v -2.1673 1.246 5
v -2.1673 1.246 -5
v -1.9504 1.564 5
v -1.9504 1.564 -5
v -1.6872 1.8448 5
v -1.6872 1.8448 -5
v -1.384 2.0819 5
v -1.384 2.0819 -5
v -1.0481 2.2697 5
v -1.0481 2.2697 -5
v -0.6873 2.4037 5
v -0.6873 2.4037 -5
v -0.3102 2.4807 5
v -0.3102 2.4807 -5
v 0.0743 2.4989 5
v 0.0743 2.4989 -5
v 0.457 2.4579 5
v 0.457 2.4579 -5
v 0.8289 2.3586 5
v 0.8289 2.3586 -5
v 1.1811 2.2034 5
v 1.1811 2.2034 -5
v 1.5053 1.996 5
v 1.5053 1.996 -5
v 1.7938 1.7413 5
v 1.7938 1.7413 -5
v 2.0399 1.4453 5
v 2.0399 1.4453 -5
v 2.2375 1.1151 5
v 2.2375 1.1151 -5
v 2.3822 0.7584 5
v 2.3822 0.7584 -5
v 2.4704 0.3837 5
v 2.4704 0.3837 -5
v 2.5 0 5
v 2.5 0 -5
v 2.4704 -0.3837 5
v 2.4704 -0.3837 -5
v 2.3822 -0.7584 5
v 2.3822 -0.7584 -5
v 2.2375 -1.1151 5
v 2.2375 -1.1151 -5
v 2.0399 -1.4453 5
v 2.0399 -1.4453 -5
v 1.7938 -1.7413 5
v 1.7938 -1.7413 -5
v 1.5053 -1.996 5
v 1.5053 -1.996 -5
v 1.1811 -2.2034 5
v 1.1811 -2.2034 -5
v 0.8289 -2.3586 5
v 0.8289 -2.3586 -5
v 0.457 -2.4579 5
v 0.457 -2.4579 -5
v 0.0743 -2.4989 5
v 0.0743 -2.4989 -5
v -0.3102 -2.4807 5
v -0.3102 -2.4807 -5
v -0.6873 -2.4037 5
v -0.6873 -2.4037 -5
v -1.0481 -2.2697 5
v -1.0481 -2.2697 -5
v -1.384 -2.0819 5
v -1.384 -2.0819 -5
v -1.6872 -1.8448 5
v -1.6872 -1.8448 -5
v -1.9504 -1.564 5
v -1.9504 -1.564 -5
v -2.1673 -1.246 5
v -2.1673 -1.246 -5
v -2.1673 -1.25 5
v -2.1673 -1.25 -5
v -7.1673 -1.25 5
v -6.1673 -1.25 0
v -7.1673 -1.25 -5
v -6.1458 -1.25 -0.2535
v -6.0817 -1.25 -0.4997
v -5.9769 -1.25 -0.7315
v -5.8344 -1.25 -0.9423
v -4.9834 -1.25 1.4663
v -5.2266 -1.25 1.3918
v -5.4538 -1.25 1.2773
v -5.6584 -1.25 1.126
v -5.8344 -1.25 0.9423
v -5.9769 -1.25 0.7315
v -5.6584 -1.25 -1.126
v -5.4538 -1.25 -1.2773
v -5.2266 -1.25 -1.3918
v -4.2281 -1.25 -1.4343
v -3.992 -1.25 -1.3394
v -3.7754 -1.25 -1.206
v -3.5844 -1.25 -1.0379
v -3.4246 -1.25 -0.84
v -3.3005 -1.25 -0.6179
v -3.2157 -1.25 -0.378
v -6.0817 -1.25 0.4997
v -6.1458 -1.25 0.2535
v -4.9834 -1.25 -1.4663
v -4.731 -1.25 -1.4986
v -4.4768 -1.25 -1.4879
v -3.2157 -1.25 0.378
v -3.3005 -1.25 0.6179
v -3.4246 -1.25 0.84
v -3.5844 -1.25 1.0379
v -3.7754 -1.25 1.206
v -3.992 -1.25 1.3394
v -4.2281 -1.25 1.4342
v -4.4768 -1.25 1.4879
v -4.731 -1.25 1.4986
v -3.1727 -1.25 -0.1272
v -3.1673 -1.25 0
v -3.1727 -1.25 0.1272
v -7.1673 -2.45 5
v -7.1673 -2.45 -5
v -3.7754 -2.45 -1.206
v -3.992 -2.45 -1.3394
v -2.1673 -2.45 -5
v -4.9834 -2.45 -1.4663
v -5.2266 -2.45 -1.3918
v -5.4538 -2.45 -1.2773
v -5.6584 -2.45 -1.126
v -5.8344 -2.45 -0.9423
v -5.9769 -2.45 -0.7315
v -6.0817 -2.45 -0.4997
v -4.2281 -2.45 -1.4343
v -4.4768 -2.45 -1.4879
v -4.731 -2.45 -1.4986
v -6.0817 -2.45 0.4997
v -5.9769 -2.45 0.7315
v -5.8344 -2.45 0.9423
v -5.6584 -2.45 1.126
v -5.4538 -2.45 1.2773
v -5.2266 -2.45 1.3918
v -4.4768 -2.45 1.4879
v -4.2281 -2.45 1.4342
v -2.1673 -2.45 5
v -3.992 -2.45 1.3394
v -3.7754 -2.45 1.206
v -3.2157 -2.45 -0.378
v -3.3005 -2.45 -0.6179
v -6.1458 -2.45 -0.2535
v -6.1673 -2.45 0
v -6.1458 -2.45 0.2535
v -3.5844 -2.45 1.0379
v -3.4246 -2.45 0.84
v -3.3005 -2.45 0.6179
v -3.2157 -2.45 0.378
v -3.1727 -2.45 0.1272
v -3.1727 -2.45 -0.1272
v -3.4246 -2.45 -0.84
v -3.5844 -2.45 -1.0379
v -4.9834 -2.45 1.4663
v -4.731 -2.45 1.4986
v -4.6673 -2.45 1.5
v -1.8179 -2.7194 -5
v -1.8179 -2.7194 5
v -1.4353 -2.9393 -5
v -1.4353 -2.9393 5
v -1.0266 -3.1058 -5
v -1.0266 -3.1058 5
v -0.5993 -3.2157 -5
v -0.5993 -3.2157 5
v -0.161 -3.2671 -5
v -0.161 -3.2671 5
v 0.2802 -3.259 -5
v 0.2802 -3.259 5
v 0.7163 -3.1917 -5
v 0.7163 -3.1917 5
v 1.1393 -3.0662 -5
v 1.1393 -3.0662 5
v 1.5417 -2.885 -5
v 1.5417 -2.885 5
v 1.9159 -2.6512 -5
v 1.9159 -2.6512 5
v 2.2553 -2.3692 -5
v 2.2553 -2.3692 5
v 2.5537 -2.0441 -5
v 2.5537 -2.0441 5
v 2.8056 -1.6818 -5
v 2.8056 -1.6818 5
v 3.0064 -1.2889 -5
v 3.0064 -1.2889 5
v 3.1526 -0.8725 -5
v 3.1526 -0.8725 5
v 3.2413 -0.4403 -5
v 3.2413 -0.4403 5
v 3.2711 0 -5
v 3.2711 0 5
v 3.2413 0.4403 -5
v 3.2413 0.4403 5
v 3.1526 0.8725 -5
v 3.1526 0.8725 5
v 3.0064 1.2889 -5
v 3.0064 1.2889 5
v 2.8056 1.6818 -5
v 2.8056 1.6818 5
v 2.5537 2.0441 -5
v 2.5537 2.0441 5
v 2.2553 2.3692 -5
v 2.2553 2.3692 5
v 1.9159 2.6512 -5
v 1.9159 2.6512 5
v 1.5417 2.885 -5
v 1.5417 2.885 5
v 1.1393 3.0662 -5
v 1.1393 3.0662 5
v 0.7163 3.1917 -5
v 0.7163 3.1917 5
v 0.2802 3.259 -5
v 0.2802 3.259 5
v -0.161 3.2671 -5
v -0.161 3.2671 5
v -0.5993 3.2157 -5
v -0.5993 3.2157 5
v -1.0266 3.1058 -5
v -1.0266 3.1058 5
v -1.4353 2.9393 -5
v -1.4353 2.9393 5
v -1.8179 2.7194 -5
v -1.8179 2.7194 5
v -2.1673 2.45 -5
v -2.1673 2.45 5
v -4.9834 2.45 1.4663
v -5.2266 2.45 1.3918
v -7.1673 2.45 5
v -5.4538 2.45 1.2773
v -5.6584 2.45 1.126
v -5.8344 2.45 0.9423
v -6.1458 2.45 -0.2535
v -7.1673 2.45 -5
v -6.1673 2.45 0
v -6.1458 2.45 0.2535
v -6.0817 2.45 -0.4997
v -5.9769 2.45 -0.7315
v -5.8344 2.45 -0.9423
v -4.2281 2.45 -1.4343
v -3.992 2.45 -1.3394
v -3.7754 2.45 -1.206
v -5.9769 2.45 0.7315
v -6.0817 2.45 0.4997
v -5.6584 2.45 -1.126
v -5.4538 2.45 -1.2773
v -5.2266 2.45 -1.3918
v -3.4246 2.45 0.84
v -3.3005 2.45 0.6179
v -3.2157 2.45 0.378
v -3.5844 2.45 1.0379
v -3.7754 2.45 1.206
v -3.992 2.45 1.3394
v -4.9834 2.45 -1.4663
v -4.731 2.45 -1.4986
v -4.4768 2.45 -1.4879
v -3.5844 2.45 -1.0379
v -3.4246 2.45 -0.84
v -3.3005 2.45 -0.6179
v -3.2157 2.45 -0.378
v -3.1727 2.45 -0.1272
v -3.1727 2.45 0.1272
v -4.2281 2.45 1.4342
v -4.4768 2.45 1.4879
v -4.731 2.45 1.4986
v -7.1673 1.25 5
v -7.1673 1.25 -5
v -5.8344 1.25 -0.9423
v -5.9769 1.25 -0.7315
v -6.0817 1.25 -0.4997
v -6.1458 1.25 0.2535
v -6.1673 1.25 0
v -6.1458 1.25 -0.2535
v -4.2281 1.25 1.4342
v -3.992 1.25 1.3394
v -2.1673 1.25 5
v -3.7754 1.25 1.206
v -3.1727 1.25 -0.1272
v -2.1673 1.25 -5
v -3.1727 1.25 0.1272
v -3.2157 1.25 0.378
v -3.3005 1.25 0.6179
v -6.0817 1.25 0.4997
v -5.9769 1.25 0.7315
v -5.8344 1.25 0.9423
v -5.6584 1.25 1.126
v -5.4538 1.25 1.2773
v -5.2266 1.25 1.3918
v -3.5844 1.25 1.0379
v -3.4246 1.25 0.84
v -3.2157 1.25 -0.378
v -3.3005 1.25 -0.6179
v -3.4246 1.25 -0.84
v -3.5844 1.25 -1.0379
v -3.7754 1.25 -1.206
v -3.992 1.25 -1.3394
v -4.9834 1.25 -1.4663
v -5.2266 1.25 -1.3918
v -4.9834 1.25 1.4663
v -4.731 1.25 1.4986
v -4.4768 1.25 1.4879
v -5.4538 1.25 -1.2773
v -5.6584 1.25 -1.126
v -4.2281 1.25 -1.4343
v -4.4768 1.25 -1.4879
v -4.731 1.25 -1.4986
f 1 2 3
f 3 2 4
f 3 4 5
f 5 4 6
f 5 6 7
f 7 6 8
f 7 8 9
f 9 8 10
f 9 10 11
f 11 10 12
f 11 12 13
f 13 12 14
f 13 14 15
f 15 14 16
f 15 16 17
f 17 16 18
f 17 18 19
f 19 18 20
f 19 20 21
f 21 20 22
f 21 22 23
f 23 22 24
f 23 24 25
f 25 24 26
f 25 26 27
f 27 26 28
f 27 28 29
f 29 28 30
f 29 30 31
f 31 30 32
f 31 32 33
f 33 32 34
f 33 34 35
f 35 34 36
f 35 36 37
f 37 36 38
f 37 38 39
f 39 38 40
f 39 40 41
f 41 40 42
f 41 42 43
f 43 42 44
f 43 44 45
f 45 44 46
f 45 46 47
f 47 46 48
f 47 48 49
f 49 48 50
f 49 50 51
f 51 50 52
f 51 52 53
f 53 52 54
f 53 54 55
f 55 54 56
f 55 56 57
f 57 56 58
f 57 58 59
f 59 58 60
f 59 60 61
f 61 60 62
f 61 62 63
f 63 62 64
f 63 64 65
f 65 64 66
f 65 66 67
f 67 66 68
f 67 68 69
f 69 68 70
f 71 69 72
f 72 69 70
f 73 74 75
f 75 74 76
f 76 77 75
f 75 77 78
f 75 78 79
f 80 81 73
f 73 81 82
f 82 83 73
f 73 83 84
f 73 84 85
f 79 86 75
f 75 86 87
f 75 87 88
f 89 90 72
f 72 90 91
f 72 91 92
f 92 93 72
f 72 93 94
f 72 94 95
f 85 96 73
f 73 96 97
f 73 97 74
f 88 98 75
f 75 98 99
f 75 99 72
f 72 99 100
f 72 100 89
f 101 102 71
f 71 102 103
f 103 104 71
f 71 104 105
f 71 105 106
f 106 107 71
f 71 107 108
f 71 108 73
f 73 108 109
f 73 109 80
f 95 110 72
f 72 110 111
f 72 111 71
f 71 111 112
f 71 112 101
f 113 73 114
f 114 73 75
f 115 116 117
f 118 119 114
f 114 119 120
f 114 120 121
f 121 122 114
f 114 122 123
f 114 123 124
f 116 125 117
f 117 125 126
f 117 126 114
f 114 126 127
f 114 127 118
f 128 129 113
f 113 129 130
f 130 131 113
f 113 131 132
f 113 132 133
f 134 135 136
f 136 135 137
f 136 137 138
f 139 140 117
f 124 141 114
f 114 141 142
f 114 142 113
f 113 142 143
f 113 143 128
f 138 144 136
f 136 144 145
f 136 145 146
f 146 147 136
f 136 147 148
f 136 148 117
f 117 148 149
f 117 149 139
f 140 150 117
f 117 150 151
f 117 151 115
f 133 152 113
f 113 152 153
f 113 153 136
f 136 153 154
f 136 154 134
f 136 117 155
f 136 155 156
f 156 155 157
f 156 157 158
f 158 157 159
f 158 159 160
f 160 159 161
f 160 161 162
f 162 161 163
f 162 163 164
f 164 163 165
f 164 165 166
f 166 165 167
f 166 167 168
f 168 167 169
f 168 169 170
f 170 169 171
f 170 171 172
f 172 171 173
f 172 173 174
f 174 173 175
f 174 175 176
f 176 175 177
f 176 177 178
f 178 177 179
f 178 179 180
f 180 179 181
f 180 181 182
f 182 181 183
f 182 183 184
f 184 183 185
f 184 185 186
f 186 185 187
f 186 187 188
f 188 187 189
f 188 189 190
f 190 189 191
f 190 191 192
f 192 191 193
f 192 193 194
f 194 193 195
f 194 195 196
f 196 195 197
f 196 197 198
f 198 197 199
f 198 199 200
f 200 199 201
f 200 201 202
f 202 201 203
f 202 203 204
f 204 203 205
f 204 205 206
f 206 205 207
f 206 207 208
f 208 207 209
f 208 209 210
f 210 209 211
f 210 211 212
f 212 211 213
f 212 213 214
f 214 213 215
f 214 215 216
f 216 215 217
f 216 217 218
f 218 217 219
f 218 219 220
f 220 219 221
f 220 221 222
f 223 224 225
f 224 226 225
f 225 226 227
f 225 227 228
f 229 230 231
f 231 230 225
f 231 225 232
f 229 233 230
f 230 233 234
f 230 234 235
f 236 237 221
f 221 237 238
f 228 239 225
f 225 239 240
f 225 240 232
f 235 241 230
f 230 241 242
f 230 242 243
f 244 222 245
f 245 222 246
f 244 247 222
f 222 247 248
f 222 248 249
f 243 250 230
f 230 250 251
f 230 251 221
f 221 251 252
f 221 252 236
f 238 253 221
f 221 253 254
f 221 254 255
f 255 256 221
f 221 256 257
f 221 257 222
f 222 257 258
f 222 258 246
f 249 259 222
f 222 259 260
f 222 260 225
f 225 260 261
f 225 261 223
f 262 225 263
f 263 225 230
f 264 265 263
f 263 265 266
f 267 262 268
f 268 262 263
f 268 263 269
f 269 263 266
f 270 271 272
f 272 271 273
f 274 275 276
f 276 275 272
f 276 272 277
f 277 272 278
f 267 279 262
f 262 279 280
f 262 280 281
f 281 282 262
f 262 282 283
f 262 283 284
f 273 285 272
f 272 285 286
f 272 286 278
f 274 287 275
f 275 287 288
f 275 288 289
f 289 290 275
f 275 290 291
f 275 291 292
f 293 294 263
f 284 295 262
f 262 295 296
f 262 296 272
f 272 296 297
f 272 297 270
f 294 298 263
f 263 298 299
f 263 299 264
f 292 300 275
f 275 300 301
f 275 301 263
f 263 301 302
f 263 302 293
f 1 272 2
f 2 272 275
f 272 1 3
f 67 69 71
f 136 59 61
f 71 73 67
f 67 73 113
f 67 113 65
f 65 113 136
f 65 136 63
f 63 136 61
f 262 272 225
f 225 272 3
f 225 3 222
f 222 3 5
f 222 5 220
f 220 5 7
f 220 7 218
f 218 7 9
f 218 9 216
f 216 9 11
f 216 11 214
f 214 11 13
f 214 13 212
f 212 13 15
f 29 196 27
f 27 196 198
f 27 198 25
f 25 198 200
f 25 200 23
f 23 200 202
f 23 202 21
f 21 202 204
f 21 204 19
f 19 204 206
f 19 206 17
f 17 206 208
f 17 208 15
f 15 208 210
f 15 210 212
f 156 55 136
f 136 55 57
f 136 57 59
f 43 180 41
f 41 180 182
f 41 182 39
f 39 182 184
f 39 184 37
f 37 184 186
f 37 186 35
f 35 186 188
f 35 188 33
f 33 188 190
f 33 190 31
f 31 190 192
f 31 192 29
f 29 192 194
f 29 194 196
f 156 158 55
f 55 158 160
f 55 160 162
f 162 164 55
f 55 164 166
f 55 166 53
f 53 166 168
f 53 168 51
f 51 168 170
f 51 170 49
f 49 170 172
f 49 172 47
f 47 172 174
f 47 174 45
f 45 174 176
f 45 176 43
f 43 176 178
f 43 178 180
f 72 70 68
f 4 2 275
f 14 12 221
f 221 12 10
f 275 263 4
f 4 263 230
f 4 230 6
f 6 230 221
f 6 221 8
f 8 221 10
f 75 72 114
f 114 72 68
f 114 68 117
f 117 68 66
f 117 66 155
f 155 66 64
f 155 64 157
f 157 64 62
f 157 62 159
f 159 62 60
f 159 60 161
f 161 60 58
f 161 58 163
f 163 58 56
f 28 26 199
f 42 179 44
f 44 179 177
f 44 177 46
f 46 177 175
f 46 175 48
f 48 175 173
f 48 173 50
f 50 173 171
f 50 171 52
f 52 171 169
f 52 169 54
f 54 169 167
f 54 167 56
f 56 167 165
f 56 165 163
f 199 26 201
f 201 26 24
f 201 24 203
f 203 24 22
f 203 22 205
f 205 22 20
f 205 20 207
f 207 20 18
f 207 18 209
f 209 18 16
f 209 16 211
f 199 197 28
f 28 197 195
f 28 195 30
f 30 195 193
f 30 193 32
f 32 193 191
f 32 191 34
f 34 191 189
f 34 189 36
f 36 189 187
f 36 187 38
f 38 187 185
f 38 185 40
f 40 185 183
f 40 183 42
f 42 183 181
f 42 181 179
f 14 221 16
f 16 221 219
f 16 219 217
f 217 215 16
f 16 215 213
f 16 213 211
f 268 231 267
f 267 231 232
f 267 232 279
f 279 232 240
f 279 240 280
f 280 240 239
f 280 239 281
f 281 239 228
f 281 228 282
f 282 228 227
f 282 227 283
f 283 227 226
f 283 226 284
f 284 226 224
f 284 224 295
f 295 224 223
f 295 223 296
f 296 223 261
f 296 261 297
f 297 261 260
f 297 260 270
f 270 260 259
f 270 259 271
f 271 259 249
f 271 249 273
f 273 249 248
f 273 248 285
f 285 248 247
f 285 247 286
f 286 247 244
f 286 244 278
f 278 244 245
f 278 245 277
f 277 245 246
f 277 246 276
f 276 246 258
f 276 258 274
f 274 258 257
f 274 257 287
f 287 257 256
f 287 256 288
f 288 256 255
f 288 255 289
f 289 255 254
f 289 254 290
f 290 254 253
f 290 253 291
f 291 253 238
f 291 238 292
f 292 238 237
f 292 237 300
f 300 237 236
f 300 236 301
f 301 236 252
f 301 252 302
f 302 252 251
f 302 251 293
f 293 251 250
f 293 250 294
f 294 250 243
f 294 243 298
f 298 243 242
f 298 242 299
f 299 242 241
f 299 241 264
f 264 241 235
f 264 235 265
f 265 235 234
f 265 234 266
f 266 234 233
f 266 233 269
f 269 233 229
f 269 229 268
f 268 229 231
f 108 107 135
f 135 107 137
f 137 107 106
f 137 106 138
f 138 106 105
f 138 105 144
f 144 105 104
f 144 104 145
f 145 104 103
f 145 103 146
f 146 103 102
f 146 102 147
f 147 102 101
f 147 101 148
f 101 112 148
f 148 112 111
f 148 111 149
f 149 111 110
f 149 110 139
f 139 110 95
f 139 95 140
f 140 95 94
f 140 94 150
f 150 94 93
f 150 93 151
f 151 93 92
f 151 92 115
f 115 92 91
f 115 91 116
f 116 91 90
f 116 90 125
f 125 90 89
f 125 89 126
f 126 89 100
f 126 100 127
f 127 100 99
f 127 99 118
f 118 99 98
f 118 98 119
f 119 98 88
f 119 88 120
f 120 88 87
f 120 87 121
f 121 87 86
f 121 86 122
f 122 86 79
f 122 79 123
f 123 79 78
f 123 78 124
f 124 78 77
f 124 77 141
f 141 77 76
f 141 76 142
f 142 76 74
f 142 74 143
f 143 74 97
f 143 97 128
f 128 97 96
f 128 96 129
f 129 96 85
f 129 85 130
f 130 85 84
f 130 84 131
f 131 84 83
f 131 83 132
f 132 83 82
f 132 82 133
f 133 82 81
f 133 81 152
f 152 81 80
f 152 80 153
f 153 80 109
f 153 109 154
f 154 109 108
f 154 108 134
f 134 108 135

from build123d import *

# Parameters (mm, degrees)
BOSS_EXTRUDE1_DEPTH = 5
SKETCH2_R           = 1.5
CUT_EXTRUDE1_DEPTH  = 10


with BuildPart() as part:
    # Sketch1 → Boss-Extrude1 (new, symmetric)
    with BuildSketch(Plane.XY):
        with BuildLine():
            Line((-7.167342336, 1.25), (-7.167342336, 2.45))
            Line((-7.167342336, 2.45), (-2.167342336, 2.45))
            ThreePointArc((-2.167342336, 2.45), (3.271066004, 0), (-2.167342336, -2.45))
            Line((-2.167342336, -2.45), (-7.167342336, -2.45))
            Line((-7.167342336, -2.45), (-7.167342336, -1.25))
            Line((-7.167342336, -1.25), (-2.167342336, -1.25))
            Line((-2.167342336, -1.25), (-2.167342336, -1.246044622))
            ThreePointArc((-2.167342336, -1.246044622), (2.5, 0), (-2.167342336, 1.246044622))
            Line((-2.167342336, 1.246044622), (-2.167342336, 1.25))
            Line((-2.167342336, 1.25), (-7.167342336, 1.25))
        make_face()
    extrude(amount=BOSS_EXTRUDE1_DEPTH, both=True)

    # Sketch2 → Cut-Extrude1 (cut)
    with BuildSketch(Plane(origin=(0, 2.45, 0), x_dir=(1, 0, 0), z_dir=(0, 1, 0))):
        with Locations(Location((-4.667342336, 0, 0), (0, 0, 180))):
            Circle(SKETCH2_R)
    extrude(amount=-CUT_EXTRUDE1_DEPTH, mode=Mode.SUBTRACT)


solid = part.part
